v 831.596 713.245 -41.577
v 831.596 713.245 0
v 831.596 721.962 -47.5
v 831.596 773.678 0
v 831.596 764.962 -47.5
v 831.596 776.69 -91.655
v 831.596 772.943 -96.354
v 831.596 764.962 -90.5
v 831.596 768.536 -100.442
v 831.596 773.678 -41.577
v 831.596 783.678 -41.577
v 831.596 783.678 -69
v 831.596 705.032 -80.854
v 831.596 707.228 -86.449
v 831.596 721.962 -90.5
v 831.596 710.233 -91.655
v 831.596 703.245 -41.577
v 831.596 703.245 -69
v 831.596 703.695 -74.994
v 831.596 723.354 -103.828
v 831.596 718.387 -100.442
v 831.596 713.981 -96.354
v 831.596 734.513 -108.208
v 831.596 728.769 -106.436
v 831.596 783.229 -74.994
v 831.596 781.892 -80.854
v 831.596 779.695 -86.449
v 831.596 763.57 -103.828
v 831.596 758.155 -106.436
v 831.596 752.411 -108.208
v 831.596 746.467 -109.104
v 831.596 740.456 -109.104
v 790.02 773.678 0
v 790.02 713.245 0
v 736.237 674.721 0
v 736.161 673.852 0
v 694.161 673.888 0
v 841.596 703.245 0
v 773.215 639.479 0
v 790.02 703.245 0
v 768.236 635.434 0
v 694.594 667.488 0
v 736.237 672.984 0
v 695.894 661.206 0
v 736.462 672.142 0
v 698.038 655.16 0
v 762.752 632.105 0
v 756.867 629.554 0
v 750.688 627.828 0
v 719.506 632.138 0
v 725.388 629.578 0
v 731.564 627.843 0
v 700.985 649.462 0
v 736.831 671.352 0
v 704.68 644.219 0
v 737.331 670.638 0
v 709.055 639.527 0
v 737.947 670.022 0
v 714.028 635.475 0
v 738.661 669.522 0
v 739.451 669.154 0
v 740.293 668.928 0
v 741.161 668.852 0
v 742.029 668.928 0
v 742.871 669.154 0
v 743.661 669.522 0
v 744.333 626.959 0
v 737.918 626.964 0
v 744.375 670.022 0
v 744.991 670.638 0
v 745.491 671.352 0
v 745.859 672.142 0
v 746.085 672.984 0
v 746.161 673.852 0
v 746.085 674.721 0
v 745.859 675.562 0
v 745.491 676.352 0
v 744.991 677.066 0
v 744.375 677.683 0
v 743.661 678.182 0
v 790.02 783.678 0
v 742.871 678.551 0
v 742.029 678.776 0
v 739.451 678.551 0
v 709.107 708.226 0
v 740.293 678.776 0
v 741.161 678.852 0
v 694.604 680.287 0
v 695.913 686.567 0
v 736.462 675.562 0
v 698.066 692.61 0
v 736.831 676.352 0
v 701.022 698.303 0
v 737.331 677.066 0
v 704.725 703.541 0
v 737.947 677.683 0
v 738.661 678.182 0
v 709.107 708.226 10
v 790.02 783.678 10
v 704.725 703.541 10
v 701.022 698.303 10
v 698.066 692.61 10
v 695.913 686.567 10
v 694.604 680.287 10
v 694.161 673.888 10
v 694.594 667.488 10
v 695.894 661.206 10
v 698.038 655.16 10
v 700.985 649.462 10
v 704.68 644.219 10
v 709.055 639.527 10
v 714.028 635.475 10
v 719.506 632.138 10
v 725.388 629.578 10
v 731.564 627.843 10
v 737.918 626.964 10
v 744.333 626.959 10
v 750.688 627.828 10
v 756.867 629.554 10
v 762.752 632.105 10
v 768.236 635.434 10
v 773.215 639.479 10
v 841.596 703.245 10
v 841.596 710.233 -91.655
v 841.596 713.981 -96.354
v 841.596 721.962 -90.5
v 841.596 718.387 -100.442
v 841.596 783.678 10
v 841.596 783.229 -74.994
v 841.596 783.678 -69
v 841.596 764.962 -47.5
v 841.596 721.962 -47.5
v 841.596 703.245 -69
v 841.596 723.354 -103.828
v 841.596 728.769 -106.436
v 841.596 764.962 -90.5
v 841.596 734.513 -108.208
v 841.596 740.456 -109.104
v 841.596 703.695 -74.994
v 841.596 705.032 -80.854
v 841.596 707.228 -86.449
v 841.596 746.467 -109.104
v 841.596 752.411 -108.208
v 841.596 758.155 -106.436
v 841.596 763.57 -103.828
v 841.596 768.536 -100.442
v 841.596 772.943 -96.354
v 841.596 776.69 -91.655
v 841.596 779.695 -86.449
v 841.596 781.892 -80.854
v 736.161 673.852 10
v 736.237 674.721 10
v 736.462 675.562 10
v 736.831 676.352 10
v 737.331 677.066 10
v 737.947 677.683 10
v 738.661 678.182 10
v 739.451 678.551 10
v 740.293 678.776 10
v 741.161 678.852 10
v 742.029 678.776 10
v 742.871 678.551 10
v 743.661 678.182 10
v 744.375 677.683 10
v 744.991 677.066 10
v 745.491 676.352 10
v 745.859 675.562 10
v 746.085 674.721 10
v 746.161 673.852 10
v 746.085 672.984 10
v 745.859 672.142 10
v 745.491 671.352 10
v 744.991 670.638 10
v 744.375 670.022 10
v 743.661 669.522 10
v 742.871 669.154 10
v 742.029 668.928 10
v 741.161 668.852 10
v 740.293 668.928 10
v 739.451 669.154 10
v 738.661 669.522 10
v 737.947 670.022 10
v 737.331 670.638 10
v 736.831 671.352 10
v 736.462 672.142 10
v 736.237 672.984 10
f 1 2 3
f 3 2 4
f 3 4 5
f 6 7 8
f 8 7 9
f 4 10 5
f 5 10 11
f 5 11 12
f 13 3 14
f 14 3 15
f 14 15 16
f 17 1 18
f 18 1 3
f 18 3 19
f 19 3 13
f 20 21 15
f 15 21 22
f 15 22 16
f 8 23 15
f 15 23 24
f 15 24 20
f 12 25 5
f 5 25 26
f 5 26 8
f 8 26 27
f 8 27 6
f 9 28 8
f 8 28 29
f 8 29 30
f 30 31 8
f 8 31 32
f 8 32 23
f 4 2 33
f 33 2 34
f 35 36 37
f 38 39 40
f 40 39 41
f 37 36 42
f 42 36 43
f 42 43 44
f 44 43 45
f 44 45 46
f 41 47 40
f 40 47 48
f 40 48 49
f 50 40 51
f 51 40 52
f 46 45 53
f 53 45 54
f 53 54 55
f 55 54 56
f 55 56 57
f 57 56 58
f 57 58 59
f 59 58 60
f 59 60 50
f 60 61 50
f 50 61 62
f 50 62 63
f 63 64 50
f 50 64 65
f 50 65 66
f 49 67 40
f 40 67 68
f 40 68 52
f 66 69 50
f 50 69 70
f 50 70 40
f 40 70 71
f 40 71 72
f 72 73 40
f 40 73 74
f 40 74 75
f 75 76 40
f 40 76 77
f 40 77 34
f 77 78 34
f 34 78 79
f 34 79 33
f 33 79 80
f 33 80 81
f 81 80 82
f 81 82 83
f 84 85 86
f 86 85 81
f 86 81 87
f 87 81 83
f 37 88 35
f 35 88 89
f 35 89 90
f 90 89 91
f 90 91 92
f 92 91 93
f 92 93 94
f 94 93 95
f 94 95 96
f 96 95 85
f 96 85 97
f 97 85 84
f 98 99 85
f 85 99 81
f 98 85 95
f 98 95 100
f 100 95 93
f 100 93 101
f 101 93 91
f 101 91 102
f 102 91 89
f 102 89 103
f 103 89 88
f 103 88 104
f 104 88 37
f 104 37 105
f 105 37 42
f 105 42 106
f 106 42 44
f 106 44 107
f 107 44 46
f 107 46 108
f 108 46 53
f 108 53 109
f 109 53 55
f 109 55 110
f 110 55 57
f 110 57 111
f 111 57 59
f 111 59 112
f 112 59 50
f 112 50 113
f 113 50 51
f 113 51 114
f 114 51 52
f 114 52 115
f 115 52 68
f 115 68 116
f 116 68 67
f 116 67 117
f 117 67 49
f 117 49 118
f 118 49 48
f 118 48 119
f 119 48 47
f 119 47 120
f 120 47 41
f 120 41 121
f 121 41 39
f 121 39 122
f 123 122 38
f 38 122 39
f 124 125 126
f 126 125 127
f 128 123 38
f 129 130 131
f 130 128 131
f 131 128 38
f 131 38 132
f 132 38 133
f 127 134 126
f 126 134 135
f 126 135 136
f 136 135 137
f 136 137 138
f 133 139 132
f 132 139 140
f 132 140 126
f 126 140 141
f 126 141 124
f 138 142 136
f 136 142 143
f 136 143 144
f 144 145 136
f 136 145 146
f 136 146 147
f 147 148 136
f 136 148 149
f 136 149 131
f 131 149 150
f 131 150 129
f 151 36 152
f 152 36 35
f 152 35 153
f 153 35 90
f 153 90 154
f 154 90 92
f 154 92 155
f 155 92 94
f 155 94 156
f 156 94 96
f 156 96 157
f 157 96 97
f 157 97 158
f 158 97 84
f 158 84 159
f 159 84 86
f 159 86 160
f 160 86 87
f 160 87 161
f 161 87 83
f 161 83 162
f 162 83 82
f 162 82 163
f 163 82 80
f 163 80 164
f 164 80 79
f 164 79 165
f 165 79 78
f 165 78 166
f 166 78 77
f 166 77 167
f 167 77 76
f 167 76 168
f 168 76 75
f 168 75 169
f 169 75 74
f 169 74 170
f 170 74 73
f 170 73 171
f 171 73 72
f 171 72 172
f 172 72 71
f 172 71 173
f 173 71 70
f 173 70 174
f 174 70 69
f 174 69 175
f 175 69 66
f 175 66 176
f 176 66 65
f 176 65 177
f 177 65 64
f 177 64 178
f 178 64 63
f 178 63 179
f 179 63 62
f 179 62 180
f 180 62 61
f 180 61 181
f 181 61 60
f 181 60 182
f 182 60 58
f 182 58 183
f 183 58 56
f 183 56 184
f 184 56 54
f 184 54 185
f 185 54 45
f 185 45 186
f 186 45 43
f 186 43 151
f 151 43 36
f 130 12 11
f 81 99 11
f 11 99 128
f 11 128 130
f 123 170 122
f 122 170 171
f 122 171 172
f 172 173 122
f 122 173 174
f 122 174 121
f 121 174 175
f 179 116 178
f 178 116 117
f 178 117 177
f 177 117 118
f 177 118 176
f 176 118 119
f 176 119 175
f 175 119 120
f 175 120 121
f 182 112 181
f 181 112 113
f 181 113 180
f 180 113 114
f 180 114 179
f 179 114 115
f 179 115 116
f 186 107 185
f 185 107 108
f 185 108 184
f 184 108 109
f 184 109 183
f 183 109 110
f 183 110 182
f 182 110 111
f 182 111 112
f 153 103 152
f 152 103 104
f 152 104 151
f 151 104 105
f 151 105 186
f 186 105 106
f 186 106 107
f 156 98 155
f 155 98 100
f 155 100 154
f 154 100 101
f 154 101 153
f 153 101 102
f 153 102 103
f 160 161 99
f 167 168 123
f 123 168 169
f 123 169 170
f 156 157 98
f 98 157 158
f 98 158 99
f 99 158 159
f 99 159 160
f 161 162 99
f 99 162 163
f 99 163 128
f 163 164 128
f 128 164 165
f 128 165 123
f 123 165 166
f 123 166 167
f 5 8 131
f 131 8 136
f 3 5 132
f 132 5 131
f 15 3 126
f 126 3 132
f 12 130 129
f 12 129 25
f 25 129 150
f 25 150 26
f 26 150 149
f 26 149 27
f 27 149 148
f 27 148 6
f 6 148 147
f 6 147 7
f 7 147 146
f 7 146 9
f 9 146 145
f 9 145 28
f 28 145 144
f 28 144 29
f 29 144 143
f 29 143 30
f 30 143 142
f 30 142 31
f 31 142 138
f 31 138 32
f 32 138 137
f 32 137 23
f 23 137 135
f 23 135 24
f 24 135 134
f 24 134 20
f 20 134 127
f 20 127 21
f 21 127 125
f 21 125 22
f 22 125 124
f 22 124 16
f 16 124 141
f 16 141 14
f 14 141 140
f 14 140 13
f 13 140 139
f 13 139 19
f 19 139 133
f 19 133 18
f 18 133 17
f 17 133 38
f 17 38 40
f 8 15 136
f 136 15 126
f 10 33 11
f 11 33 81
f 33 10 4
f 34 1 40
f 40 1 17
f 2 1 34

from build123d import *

# Parameters (mm, degrees)
SKETCH2_R           = 5
BOSS_EXTRUDE1_DEPTH = 10
SKETCH5_W           = 43
SKETCH5_H           = 43
BOSS_EXTRUDE3_DEPTH = 10
BOSS_EXTRUDE4_DEPTH = 10


with BuildPart() as part:
    # Sketch2 → Boss-Extrude1 (new body)
    with BuildSketch(Plane.XY):
        with BuildLine():
            Line((790.019647556, 783.678215824), (709.10700943, 708.225960112))
            ThreePointArc((709.10700943, 708.225960112), (706.787308377, 641.798413213), (773.214855276, 639.47871216))
            Line((773.214855276, 639.47871216), (841.59626274, 703.245406232))
            Line((841.59626274, 703.245406232), (841.59626274, 783.678215824))
            Line((841.59626274, 783.678215824), (790.019647556, 783.678215824))
        make_face()
        with Locations((741.160932353, 673.852336136)):
            Circle(SKETCH2_R, mode=Mode.SUBTRACT)
    extrude(amount=BOSS_EXTRUDE1_DEPTH)

    # Sketch5 → Boss-Extrude3 (add)
    with BuildSketch(Plane(origin=(841.59626274, 0, 0), x_dir=(0, 0, -1), z_dir=(1, 0, 0))):
        with BuildLine():
            Line((69, 783.678215824), (0, 783.678215824))
            Line((0, 783.678215824), (0, 703.245406232))
            Line((0, 703.245406232), (69, 703.245406232))
            ThreePointArc((69, 703.245406232), (109.216404796, 743.461811028), (69, 783.678215824))
        make_face()
        with Locations((69, 743.461811028)):
            Rectangle(SKETCH5_W, SKETCH5_H, mode=Mode.SUBTRACT)
    extrude(amount=-BOSS_EXTRUDE3_DEPTH)

    # Sketch6 → Boss-Extrude4 (add)
    with BuildSketch(Plane(origin=(0, 783.678215824, 0), x_dir=(1, 0, 0), z_dir=(0, 1, 0))):
        Polygon((790.019647556, 0), (831.59626274, 41.576615184), (831.59626274, 0), align=None)
    boss_extrude4 = extrude(amount=-BOSS_EXTRUDE4_DEPTH)

    # Mirror1: Boss-Extrude4 across plane
    add(boss_extrude4.mirror(Plane.ZX.offset(743.461811028)))


solid = part.part
